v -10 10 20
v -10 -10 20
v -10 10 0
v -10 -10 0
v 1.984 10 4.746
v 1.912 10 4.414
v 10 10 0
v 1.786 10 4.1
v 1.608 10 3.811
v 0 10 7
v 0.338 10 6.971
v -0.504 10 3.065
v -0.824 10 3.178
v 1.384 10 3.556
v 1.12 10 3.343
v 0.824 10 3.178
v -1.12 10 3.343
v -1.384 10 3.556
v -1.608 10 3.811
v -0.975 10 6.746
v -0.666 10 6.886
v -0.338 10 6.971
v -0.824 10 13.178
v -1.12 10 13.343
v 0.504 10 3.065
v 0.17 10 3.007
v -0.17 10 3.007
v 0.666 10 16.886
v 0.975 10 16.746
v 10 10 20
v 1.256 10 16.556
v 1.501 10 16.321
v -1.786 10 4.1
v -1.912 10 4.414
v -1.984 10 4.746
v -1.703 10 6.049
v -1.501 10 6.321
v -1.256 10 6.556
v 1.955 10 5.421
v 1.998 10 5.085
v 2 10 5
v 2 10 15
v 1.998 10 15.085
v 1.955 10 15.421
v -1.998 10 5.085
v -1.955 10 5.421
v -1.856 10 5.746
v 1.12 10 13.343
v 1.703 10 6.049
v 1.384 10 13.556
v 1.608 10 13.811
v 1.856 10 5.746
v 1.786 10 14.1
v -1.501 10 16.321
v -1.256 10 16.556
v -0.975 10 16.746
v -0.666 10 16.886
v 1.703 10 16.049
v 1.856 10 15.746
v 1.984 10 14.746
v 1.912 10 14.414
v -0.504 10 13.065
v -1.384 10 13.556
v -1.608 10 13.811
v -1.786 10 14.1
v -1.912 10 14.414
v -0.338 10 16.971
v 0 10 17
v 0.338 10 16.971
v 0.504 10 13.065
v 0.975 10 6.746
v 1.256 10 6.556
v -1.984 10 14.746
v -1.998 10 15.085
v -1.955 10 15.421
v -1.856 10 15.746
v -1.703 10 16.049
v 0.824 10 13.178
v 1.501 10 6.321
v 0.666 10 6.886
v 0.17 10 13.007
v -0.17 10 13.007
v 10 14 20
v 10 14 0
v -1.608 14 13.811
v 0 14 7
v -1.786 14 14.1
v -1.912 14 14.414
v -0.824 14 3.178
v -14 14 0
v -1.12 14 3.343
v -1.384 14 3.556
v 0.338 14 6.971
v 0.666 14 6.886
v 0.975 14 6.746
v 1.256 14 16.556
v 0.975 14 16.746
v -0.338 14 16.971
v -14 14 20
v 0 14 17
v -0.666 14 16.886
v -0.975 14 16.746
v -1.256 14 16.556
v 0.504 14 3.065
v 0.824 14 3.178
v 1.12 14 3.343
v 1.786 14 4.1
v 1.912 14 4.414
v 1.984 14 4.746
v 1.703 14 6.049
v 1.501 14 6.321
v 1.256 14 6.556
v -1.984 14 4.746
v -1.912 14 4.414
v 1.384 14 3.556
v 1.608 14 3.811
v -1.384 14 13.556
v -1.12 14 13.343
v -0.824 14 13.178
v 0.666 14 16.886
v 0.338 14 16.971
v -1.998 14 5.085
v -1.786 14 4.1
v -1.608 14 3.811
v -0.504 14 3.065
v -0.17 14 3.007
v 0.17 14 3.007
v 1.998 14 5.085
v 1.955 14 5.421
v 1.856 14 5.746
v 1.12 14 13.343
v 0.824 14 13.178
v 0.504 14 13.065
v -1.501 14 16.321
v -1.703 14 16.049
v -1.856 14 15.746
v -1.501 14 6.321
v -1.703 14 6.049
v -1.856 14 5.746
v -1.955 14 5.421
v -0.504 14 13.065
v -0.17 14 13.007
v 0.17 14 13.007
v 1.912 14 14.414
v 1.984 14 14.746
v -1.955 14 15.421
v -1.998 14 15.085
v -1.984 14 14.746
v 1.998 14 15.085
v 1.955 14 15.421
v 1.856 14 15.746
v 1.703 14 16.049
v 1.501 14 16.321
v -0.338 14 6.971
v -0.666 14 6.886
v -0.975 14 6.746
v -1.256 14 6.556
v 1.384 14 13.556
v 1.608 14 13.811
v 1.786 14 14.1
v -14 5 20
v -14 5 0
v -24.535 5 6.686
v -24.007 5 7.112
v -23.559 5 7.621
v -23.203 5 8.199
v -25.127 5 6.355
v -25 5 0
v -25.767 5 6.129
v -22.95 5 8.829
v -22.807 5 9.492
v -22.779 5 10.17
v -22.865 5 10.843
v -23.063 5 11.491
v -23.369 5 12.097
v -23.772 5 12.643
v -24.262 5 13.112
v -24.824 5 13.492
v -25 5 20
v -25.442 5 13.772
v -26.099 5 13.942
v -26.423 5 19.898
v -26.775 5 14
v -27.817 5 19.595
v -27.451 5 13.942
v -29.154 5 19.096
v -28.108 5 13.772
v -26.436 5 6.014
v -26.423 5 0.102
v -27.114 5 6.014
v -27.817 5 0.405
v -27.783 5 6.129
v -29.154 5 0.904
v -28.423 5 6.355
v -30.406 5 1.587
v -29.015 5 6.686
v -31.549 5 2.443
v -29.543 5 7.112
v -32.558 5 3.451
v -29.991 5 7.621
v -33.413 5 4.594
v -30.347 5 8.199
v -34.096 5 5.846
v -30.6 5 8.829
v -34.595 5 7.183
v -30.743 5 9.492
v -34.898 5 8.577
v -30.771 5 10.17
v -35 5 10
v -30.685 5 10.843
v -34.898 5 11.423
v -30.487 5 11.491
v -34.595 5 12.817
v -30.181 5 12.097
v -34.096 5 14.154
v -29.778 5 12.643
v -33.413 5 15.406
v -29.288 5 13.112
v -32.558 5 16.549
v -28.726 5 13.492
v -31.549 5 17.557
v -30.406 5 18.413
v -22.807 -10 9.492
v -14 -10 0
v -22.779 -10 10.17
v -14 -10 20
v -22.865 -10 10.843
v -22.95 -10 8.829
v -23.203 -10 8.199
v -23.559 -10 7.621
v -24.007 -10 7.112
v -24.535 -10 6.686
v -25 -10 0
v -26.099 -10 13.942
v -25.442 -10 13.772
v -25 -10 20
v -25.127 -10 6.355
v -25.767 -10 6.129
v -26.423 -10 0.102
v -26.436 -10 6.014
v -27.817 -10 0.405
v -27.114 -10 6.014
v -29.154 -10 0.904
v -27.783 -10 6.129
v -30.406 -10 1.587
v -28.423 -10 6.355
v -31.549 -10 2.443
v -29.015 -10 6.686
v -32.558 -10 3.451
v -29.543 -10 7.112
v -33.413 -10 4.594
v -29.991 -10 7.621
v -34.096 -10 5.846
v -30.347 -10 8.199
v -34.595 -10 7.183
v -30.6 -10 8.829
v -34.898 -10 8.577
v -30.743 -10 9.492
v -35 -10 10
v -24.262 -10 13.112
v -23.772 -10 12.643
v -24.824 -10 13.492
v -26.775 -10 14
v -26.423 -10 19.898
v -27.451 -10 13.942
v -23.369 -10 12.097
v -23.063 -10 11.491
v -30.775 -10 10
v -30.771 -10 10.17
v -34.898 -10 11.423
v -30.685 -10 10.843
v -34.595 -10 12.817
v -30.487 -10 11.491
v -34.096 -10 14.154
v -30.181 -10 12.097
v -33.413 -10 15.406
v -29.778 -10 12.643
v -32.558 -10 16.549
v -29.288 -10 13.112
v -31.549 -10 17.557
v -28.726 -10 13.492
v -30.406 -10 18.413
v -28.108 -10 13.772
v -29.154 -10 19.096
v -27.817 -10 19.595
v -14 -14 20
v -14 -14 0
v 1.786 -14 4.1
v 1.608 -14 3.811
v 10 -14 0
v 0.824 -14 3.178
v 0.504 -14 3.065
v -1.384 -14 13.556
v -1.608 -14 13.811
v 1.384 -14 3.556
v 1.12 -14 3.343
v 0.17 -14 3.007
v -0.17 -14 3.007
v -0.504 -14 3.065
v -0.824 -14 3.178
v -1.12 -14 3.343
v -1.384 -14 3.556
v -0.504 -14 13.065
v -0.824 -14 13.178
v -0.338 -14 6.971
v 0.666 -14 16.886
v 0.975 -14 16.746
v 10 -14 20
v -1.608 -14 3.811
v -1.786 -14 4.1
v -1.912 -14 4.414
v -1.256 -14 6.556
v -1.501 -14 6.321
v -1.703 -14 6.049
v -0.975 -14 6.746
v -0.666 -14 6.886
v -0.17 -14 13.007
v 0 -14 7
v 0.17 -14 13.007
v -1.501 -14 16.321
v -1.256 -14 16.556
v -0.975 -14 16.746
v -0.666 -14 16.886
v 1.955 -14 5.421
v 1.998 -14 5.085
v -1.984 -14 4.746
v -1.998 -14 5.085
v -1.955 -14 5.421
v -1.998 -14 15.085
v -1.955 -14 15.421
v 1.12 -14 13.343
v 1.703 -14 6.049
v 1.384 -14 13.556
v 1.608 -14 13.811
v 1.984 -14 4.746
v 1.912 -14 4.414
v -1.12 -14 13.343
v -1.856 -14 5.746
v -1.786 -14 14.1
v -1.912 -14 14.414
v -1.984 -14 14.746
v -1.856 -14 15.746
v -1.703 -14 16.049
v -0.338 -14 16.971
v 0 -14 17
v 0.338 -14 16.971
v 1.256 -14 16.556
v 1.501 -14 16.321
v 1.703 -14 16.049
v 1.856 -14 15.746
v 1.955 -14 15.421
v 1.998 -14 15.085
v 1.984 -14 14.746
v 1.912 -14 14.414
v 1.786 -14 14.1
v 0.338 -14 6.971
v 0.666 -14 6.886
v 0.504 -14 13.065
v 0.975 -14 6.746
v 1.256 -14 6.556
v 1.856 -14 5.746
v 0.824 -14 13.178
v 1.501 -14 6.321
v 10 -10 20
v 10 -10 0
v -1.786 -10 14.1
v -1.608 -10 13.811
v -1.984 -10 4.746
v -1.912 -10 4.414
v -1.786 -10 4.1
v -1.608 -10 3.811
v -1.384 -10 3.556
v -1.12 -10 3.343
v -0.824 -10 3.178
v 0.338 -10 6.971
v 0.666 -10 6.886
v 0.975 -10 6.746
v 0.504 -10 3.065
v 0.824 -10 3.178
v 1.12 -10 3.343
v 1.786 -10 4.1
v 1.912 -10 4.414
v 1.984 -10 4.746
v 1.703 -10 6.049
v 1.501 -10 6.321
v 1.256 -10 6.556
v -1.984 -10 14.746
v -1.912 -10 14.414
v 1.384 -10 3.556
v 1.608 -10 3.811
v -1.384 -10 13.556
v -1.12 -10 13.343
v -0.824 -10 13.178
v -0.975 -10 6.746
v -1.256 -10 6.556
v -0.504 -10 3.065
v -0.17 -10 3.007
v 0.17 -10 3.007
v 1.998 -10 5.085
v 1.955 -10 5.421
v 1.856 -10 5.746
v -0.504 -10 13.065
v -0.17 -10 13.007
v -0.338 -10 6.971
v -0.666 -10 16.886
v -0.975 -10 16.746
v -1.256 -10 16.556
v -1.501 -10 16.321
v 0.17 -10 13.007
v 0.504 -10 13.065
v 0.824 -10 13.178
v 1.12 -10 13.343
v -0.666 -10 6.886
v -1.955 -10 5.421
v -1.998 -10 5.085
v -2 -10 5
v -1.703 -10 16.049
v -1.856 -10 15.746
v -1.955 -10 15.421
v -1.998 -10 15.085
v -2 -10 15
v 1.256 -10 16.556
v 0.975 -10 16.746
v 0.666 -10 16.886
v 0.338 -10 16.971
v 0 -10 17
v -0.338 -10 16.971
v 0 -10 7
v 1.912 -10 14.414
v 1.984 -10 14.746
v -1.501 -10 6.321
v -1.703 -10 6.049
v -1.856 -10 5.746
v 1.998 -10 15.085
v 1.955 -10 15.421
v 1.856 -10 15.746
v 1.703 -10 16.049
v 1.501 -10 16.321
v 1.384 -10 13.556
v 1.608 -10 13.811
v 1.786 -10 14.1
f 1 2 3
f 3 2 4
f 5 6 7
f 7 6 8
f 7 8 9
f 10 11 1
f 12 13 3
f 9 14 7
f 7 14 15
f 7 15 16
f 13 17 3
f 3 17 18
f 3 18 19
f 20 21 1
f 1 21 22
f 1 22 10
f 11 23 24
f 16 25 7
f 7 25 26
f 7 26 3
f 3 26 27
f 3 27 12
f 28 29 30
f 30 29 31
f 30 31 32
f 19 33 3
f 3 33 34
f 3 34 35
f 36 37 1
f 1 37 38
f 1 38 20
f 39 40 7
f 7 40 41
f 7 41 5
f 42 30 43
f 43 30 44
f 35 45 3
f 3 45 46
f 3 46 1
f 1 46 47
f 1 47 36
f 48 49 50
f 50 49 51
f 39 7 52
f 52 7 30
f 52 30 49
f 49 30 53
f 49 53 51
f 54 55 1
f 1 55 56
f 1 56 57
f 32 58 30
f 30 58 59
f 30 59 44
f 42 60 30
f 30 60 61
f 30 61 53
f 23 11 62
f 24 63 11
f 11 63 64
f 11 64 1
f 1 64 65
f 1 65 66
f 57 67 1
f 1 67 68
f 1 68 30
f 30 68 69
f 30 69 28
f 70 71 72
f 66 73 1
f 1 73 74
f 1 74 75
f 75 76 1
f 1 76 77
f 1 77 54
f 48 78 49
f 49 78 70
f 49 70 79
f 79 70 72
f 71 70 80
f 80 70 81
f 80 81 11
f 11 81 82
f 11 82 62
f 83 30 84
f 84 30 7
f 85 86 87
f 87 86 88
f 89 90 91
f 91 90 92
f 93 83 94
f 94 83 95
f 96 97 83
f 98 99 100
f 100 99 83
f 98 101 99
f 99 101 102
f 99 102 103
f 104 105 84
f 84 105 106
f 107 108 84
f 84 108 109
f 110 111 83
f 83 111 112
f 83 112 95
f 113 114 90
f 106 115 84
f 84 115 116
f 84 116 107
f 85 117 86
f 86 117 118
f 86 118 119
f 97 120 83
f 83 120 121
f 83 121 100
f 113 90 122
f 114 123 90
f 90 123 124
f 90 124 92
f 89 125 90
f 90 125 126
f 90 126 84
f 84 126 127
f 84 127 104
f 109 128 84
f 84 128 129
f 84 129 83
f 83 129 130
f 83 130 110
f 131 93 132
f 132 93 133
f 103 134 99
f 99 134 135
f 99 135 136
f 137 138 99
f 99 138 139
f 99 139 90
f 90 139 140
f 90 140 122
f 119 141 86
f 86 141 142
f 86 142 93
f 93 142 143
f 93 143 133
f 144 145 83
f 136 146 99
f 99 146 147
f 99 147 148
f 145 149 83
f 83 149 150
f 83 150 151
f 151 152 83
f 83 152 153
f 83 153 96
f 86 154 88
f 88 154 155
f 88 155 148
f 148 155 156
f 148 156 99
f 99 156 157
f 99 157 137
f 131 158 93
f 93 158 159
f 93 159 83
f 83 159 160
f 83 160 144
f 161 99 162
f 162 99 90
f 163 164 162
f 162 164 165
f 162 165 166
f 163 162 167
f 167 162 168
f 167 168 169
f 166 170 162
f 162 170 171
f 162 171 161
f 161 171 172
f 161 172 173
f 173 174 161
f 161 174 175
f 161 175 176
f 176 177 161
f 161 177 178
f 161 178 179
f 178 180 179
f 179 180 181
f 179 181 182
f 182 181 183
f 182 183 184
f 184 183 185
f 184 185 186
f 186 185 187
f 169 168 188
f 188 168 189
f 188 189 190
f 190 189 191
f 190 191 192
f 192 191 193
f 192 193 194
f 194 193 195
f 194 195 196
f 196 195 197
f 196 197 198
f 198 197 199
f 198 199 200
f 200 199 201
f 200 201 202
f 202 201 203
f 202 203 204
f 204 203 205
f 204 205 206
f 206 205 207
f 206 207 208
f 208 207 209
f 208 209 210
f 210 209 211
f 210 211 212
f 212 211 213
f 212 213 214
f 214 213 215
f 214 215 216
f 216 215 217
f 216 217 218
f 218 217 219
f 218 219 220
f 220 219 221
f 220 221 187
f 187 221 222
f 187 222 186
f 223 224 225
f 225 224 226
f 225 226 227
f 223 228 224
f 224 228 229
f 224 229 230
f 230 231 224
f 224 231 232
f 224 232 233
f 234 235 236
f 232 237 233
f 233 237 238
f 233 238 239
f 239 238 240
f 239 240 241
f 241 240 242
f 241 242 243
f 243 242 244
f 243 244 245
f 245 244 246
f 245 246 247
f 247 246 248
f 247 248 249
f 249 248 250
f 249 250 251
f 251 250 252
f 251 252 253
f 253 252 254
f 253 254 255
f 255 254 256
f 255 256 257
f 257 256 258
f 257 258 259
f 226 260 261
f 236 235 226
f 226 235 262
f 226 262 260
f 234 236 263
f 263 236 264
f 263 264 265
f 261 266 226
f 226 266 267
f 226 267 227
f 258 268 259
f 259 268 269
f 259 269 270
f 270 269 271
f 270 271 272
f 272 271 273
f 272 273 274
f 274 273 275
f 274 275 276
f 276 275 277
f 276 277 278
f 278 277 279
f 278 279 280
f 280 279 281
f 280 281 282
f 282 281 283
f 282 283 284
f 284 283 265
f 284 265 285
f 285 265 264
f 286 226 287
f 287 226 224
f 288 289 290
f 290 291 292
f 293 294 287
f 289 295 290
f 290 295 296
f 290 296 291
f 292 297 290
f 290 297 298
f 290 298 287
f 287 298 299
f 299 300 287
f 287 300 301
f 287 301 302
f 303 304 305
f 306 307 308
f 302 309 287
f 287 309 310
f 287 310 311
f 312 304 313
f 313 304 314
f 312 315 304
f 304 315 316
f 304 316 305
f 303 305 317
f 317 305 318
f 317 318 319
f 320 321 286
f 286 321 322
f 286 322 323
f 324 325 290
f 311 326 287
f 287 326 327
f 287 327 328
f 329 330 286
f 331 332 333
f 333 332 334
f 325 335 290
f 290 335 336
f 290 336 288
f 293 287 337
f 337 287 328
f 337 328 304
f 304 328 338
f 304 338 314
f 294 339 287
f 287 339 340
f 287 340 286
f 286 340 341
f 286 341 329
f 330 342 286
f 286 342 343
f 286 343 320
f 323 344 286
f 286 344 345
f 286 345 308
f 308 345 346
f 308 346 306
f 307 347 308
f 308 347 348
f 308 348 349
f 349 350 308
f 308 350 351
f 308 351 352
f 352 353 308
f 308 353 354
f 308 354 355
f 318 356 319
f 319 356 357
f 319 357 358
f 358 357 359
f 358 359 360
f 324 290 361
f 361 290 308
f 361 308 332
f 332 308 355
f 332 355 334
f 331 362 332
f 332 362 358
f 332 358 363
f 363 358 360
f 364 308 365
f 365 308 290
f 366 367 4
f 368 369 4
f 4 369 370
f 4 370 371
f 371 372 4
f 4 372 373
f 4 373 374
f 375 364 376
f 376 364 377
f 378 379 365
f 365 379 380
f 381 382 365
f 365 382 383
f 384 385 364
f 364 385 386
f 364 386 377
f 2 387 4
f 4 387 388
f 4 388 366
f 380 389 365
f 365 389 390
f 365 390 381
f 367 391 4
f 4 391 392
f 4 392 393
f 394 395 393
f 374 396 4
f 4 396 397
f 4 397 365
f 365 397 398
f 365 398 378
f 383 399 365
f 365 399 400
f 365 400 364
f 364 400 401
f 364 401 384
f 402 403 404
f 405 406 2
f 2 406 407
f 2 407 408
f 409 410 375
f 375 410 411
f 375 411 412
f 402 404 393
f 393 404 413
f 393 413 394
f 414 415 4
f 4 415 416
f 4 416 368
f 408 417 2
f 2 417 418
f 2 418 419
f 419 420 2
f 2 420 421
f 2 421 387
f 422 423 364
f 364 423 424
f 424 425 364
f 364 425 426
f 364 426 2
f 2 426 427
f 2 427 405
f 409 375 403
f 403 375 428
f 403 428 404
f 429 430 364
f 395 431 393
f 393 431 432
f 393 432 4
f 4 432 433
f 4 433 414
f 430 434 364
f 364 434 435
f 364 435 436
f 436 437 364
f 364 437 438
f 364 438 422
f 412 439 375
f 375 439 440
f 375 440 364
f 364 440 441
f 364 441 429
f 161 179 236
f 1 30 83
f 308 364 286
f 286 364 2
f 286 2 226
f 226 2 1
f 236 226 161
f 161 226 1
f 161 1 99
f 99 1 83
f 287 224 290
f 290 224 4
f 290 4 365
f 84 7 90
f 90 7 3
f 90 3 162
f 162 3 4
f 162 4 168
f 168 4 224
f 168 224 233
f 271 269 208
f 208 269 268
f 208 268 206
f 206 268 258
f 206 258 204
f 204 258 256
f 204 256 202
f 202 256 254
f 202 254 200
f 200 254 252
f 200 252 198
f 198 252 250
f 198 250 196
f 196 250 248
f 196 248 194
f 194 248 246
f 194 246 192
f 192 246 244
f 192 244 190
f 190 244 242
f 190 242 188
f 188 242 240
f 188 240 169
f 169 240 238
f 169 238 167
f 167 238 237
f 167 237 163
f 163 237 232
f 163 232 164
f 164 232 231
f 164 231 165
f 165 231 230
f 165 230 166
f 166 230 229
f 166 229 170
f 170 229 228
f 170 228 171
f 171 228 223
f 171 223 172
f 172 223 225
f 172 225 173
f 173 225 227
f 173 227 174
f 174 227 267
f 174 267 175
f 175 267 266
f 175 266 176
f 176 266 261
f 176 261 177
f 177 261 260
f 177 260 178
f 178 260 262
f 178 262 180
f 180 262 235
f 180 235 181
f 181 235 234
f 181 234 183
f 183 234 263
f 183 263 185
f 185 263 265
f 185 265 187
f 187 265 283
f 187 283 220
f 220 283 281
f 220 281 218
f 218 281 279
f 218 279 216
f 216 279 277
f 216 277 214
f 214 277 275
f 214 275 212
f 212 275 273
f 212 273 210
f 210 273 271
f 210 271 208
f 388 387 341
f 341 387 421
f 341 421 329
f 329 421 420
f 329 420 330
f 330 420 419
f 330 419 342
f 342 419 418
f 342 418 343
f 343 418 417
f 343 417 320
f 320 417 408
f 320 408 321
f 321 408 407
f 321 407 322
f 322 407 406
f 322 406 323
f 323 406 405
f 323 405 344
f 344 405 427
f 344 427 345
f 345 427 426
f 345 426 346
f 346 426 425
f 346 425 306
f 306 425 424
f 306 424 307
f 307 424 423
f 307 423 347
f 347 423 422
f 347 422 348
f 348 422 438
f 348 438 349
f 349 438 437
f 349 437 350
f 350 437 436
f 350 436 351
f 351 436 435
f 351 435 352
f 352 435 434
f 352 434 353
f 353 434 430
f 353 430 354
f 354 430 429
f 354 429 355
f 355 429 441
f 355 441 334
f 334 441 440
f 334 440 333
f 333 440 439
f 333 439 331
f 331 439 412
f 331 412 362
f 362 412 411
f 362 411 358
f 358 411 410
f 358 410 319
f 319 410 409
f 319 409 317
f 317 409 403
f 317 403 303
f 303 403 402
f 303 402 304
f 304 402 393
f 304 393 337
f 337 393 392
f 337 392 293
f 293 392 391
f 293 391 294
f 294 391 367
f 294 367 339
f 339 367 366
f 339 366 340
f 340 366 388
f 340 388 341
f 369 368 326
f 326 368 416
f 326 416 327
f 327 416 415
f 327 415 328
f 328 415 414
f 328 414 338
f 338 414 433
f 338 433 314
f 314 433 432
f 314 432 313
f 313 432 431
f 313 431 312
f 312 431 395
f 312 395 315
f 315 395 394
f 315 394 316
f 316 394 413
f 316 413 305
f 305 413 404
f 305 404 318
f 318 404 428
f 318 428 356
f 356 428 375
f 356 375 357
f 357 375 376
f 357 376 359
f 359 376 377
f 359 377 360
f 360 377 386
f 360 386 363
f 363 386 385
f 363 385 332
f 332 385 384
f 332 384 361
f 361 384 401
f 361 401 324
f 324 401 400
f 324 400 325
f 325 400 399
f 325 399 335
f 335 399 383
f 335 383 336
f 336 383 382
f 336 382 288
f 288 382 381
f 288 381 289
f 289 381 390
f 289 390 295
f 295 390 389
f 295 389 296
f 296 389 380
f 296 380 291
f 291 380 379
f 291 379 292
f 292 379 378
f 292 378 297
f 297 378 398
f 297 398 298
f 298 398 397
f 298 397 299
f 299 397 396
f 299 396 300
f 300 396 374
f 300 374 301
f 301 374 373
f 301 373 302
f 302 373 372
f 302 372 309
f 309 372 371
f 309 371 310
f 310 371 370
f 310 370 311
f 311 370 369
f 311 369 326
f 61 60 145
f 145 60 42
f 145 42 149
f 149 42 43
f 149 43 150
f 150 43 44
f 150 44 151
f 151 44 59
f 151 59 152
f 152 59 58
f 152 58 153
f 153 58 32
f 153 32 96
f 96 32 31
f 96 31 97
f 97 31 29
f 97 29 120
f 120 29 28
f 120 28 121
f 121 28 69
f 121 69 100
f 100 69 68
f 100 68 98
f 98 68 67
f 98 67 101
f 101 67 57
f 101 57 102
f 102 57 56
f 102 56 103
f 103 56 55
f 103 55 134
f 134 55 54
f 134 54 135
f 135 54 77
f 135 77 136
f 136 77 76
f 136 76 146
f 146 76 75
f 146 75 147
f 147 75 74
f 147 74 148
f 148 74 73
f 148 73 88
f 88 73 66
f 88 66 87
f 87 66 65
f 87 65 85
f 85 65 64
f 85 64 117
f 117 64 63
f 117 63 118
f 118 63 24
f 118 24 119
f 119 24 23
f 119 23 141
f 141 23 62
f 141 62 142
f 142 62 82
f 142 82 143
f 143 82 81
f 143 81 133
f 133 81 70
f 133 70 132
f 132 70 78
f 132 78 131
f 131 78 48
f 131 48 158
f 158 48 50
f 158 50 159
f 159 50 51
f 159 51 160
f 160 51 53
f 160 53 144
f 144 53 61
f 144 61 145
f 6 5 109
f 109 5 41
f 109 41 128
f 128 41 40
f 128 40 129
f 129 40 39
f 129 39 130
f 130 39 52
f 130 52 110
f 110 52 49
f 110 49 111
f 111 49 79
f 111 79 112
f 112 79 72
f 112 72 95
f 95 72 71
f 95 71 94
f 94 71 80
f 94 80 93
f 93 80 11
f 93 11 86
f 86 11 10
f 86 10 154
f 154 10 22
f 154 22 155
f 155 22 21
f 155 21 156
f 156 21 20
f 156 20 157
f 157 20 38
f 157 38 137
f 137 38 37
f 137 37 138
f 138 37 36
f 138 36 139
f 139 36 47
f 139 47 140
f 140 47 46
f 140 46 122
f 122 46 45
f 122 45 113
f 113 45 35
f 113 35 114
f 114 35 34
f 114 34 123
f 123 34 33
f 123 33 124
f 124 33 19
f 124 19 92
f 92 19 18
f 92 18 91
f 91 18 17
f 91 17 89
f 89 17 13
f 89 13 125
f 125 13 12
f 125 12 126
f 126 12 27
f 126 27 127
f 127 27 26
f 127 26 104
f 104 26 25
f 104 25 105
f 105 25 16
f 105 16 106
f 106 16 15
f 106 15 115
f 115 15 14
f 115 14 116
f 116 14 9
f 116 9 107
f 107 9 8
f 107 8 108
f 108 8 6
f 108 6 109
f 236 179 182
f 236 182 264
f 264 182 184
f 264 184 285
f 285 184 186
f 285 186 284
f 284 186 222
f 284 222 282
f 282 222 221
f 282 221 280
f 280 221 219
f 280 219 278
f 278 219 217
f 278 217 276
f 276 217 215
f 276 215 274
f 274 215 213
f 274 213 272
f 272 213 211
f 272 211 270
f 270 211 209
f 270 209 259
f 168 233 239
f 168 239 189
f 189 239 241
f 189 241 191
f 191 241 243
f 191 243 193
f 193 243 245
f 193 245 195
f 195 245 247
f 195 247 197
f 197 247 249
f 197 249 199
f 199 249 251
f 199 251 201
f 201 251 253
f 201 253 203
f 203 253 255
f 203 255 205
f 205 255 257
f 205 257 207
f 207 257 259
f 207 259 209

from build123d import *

# Parameters (mm, degrees)
SKETCH1_W               = 25
SKETCH1_H               = 15
SKETCH1_W_2             = 20
SKETCH1_H_2             = 4
BOSS_EXTRUDE1_DEPTH     = 20
SKETCH2_R               = 4
CUT_EXTRUDE2_DEPTH      = 45.56455991
CUT_EXTRUDE3_DEPTH      = 45.56455991
CUT_EXTRUDE3_DEPTH_BACK = 45.56455991
SKETCH3_R               = 2
FILLET4_R               = 10


with BuildPart() as part:
    # Sketch1 → Boss-Extrude1 (new body)
    with BuildSketch(Plane.XY):
        with Locations((-22.5, -2.5)):
            Rectangle(SKETCH1_W, SKETCH1_H)
        Polygon((-14, 14), (-14, 5), (-10, 5), (-10, 10), (-10, 14), align=None)
        with Locations((0, 12)):
            Rectangle(SKETCH1_W_2, SKETCH1_H_2)
        Polygon((-10, -10), (-14, -10), (-14, -14), (10, -14), (10, -10), align=None)
    extrude(amount=BOSS_EXTRUDE1_DEPTH)

    # Sketch2 → Cut-Extrude2 (cut, through all)
    with BuildSketch(Plane(origin=(0, 5, 0), x_dir=(1, 0, 0), z_dir=(0, 1, 0))):
        with Locations(Location((-26.775, -10, 0), (0, 0, 270))):
            Circle(SKETCH2_R)
    extrude(amount=-CUT_EXTRUDE2_DEPTH, mode=Mode.SUBTRACT)

    # Sketch3 → Cut-Extrude3 (cut, two sides: drawn at the far end of the back side and taken through both)
    with BuildSketch(Plane(origin=(0, 5, 0), x_dir=(1, 0, 0), z_dir=(0, 1, 0)).offset(-CUT_EXTRUDE3_DEPTH_BACK)):
        with Locations(Location((0, -5, 0), (0, 0, 270))):
            Circle(SKETCH3_R)
        with Locations(Location((0, -15, 0), (0, 0, 270))):
            Circle(SKETCH3_R)
    extrude(amount=CUT_EXTRUDE3_DEPTH + CUT_EXTRUDE3_DEPTH_BACK, mode=Mode.SUBTRACT)

    # Fillet4
    fillet4_edges = [part.edges().sort_by_distance(p)[0] for p in [
        (-35, -2.5, 0),
        (-35, -2.5, 20),
    ]]
    fillet(fillet4_edges, radius=FILLET4_R - 0.0001)  # a hair under: the kernel refuses the full size


solid = part.part
